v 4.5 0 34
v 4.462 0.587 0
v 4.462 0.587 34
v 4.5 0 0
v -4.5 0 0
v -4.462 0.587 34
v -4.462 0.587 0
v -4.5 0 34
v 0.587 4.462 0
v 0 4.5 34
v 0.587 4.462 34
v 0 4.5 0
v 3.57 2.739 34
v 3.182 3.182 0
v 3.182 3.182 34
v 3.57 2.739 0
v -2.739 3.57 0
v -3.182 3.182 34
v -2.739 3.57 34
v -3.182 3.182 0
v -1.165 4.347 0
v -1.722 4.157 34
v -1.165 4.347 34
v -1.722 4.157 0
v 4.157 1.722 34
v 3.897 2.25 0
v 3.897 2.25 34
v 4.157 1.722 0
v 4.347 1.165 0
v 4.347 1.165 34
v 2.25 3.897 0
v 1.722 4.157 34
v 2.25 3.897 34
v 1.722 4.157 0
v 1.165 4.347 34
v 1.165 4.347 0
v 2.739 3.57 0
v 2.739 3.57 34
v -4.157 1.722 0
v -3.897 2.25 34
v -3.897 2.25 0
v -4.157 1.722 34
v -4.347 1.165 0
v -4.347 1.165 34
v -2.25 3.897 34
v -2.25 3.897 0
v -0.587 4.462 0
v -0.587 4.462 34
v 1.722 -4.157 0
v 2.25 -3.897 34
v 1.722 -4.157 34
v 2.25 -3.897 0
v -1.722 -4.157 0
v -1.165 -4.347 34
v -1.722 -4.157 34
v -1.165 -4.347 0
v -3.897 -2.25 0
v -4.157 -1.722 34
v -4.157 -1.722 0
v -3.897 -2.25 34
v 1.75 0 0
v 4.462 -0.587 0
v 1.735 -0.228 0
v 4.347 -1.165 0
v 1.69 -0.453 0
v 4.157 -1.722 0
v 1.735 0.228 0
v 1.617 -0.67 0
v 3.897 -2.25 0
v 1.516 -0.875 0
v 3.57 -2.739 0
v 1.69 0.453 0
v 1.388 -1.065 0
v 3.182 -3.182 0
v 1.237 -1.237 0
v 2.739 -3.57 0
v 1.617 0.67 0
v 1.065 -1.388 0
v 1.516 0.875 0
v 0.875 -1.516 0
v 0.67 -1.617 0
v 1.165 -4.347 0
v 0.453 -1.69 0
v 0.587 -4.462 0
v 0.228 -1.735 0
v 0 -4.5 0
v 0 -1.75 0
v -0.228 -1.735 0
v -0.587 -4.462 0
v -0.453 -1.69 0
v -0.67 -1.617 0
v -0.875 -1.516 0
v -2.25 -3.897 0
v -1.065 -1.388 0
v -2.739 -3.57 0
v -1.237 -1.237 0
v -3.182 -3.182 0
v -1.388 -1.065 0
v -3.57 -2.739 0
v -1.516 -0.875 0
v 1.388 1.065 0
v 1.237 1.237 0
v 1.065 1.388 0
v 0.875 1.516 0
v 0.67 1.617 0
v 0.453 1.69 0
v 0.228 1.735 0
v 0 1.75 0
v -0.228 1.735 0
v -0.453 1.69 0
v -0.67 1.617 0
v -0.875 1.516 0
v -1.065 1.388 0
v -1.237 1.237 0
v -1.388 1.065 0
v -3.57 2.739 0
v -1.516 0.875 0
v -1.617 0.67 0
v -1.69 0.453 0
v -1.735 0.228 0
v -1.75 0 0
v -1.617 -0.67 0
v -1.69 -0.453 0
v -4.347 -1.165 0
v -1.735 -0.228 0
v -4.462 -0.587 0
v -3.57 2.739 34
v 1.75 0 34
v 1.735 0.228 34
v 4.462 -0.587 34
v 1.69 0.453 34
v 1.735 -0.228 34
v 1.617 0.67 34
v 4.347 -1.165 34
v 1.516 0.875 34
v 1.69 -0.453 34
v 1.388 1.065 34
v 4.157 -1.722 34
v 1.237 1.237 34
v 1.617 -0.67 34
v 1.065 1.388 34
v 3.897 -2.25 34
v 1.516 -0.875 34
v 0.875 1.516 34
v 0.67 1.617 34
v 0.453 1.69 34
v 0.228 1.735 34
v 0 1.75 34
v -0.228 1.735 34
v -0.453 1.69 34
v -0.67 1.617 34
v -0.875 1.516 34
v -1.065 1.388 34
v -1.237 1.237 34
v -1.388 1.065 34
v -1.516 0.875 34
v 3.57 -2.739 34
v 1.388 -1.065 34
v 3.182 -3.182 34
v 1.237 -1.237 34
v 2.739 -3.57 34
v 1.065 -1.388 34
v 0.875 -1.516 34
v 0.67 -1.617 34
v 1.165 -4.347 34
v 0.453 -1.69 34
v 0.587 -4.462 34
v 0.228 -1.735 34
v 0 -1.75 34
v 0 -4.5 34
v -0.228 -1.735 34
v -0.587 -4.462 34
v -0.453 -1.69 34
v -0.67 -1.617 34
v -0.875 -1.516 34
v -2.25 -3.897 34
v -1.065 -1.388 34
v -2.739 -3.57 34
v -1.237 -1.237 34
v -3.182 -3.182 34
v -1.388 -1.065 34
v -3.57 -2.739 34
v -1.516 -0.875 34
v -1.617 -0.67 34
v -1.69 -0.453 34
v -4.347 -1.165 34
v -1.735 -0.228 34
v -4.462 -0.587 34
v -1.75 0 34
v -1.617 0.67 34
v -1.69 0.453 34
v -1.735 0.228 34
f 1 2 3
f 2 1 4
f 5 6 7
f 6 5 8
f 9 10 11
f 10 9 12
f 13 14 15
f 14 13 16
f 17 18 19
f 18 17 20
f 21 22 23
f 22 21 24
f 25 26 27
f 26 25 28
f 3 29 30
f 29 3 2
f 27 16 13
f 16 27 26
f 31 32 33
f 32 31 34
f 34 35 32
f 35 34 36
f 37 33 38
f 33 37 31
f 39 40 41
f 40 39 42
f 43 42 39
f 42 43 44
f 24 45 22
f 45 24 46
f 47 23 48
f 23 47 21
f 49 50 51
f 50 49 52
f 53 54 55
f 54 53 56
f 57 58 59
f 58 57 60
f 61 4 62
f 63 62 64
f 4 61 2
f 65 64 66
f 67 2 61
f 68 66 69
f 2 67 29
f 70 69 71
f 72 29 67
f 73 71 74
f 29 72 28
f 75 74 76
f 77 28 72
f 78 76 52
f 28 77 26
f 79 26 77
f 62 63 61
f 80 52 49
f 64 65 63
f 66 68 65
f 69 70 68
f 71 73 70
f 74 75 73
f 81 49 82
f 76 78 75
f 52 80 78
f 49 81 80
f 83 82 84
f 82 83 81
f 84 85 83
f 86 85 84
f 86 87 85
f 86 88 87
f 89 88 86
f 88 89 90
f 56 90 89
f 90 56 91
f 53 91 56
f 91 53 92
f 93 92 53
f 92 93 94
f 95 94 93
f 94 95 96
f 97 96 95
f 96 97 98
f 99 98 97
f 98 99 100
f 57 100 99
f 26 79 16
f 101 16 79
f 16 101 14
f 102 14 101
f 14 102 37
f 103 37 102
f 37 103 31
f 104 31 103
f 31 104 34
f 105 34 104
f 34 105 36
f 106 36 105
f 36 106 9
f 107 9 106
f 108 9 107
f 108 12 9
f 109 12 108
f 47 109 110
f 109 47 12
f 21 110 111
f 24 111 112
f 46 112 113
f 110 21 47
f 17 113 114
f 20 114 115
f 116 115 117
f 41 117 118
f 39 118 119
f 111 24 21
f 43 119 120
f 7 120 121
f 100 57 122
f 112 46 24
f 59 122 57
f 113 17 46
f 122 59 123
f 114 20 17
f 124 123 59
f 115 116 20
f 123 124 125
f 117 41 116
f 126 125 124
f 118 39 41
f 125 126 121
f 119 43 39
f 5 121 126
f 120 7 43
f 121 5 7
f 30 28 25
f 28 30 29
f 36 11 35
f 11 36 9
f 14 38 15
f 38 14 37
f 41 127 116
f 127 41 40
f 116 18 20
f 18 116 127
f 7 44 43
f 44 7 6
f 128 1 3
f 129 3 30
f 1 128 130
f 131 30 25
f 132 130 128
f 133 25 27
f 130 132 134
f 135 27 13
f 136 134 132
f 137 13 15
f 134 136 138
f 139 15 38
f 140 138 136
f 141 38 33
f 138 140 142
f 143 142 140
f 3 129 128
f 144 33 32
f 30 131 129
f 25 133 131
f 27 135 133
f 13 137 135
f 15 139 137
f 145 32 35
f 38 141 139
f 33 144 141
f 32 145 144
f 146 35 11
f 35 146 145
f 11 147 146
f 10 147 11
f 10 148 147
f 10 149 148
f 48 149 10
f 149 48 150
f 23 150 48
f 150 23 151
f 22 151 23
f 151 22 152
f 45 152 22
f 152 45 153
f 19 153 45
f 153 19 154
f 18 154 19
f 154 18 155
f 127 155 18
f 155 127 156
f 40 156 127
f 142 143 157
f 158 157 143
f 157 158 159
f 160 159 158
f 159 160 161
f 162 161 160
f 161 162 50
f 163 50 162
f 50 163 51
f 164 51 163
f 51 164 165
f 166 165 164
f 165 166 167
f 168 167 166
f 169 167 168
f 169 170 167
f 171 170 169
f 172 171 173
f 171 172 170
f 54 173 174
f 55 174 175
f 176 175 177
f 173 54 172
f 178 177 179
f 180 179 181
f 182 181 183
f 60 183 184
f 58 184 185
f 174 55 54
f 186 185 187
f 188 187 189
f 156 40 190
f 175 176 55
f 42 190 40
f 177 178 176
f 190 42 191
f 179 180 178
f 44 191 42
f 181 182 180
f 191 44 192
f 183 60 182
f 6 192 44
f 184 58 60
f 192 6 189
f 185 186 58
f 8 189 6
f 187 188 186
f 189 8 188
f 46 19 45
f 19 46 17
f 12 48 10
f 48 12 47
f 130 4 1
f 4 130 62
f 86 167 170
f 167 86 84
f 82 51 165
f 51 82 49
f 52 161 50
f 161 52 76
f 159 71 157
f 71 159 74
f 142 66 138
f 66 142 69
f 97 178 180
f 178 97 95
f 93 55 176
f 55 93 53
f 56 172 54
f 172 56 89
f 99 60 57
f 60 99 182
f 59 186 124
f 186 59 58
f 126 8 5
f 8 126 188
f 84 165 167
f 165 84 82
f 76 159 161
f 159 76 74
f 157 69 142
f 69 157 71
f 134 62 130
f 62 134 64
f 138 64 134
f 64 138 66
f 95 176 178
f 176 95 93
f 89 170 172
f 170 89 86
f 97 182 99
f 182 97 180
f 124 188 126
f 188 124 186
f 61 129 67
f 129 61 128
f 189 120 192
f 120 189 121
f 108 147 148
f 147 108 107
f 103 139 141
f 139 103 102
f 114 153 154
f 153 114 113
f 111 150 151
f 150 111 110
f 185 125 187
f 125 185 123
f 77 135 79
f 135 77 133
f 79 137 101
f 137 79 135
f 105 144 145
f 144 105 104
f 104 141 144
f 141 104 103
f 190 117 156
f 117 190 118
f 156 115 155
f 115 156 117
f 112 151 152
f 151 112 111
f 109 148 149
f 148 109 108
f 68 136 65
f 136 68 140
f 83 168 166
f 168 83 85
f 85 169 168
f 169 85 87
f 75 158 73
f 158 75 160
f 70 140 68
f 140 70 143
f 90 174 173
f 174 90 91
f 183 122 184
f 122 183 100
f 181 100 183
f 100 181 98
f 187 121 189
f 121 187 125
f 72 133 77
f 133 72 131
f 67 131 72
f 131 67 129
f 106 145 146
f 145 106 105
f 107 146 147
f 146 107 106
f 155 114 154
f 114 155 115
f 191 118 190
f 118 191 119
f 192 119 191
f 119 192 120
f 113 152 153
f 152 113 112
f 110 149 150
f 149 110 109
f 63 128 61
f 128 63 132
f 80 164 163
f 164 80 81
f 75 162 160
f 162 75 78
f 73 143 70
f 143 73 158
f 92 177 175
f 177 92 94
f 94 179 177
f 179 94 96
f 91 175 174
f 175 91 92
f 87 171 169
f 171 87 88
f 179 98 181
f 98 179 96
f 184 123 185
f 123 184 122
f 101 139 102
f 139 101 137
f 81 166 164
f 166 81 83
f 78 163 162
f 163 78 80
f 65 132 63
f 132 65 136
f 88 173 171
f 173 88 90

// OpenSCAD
// Gen-EB — TOP STANDOFF (2026-11-02 pedestal frame): stator top face -> spider arm, on the 3 arm frame rods. Print x3.
// Same Ø as the old frame standoffs (standoff_od) because the rotor-B rim spins right beside it.
include <parameters.scad>;
$fn = 48;
difference() {
    cylinder(d=standoff_od, h=top_standoff_h);
    translate([0, 0, -0.1]) cylinder(d=m3_clear, h=top_standoff_h + 0.2);
}
